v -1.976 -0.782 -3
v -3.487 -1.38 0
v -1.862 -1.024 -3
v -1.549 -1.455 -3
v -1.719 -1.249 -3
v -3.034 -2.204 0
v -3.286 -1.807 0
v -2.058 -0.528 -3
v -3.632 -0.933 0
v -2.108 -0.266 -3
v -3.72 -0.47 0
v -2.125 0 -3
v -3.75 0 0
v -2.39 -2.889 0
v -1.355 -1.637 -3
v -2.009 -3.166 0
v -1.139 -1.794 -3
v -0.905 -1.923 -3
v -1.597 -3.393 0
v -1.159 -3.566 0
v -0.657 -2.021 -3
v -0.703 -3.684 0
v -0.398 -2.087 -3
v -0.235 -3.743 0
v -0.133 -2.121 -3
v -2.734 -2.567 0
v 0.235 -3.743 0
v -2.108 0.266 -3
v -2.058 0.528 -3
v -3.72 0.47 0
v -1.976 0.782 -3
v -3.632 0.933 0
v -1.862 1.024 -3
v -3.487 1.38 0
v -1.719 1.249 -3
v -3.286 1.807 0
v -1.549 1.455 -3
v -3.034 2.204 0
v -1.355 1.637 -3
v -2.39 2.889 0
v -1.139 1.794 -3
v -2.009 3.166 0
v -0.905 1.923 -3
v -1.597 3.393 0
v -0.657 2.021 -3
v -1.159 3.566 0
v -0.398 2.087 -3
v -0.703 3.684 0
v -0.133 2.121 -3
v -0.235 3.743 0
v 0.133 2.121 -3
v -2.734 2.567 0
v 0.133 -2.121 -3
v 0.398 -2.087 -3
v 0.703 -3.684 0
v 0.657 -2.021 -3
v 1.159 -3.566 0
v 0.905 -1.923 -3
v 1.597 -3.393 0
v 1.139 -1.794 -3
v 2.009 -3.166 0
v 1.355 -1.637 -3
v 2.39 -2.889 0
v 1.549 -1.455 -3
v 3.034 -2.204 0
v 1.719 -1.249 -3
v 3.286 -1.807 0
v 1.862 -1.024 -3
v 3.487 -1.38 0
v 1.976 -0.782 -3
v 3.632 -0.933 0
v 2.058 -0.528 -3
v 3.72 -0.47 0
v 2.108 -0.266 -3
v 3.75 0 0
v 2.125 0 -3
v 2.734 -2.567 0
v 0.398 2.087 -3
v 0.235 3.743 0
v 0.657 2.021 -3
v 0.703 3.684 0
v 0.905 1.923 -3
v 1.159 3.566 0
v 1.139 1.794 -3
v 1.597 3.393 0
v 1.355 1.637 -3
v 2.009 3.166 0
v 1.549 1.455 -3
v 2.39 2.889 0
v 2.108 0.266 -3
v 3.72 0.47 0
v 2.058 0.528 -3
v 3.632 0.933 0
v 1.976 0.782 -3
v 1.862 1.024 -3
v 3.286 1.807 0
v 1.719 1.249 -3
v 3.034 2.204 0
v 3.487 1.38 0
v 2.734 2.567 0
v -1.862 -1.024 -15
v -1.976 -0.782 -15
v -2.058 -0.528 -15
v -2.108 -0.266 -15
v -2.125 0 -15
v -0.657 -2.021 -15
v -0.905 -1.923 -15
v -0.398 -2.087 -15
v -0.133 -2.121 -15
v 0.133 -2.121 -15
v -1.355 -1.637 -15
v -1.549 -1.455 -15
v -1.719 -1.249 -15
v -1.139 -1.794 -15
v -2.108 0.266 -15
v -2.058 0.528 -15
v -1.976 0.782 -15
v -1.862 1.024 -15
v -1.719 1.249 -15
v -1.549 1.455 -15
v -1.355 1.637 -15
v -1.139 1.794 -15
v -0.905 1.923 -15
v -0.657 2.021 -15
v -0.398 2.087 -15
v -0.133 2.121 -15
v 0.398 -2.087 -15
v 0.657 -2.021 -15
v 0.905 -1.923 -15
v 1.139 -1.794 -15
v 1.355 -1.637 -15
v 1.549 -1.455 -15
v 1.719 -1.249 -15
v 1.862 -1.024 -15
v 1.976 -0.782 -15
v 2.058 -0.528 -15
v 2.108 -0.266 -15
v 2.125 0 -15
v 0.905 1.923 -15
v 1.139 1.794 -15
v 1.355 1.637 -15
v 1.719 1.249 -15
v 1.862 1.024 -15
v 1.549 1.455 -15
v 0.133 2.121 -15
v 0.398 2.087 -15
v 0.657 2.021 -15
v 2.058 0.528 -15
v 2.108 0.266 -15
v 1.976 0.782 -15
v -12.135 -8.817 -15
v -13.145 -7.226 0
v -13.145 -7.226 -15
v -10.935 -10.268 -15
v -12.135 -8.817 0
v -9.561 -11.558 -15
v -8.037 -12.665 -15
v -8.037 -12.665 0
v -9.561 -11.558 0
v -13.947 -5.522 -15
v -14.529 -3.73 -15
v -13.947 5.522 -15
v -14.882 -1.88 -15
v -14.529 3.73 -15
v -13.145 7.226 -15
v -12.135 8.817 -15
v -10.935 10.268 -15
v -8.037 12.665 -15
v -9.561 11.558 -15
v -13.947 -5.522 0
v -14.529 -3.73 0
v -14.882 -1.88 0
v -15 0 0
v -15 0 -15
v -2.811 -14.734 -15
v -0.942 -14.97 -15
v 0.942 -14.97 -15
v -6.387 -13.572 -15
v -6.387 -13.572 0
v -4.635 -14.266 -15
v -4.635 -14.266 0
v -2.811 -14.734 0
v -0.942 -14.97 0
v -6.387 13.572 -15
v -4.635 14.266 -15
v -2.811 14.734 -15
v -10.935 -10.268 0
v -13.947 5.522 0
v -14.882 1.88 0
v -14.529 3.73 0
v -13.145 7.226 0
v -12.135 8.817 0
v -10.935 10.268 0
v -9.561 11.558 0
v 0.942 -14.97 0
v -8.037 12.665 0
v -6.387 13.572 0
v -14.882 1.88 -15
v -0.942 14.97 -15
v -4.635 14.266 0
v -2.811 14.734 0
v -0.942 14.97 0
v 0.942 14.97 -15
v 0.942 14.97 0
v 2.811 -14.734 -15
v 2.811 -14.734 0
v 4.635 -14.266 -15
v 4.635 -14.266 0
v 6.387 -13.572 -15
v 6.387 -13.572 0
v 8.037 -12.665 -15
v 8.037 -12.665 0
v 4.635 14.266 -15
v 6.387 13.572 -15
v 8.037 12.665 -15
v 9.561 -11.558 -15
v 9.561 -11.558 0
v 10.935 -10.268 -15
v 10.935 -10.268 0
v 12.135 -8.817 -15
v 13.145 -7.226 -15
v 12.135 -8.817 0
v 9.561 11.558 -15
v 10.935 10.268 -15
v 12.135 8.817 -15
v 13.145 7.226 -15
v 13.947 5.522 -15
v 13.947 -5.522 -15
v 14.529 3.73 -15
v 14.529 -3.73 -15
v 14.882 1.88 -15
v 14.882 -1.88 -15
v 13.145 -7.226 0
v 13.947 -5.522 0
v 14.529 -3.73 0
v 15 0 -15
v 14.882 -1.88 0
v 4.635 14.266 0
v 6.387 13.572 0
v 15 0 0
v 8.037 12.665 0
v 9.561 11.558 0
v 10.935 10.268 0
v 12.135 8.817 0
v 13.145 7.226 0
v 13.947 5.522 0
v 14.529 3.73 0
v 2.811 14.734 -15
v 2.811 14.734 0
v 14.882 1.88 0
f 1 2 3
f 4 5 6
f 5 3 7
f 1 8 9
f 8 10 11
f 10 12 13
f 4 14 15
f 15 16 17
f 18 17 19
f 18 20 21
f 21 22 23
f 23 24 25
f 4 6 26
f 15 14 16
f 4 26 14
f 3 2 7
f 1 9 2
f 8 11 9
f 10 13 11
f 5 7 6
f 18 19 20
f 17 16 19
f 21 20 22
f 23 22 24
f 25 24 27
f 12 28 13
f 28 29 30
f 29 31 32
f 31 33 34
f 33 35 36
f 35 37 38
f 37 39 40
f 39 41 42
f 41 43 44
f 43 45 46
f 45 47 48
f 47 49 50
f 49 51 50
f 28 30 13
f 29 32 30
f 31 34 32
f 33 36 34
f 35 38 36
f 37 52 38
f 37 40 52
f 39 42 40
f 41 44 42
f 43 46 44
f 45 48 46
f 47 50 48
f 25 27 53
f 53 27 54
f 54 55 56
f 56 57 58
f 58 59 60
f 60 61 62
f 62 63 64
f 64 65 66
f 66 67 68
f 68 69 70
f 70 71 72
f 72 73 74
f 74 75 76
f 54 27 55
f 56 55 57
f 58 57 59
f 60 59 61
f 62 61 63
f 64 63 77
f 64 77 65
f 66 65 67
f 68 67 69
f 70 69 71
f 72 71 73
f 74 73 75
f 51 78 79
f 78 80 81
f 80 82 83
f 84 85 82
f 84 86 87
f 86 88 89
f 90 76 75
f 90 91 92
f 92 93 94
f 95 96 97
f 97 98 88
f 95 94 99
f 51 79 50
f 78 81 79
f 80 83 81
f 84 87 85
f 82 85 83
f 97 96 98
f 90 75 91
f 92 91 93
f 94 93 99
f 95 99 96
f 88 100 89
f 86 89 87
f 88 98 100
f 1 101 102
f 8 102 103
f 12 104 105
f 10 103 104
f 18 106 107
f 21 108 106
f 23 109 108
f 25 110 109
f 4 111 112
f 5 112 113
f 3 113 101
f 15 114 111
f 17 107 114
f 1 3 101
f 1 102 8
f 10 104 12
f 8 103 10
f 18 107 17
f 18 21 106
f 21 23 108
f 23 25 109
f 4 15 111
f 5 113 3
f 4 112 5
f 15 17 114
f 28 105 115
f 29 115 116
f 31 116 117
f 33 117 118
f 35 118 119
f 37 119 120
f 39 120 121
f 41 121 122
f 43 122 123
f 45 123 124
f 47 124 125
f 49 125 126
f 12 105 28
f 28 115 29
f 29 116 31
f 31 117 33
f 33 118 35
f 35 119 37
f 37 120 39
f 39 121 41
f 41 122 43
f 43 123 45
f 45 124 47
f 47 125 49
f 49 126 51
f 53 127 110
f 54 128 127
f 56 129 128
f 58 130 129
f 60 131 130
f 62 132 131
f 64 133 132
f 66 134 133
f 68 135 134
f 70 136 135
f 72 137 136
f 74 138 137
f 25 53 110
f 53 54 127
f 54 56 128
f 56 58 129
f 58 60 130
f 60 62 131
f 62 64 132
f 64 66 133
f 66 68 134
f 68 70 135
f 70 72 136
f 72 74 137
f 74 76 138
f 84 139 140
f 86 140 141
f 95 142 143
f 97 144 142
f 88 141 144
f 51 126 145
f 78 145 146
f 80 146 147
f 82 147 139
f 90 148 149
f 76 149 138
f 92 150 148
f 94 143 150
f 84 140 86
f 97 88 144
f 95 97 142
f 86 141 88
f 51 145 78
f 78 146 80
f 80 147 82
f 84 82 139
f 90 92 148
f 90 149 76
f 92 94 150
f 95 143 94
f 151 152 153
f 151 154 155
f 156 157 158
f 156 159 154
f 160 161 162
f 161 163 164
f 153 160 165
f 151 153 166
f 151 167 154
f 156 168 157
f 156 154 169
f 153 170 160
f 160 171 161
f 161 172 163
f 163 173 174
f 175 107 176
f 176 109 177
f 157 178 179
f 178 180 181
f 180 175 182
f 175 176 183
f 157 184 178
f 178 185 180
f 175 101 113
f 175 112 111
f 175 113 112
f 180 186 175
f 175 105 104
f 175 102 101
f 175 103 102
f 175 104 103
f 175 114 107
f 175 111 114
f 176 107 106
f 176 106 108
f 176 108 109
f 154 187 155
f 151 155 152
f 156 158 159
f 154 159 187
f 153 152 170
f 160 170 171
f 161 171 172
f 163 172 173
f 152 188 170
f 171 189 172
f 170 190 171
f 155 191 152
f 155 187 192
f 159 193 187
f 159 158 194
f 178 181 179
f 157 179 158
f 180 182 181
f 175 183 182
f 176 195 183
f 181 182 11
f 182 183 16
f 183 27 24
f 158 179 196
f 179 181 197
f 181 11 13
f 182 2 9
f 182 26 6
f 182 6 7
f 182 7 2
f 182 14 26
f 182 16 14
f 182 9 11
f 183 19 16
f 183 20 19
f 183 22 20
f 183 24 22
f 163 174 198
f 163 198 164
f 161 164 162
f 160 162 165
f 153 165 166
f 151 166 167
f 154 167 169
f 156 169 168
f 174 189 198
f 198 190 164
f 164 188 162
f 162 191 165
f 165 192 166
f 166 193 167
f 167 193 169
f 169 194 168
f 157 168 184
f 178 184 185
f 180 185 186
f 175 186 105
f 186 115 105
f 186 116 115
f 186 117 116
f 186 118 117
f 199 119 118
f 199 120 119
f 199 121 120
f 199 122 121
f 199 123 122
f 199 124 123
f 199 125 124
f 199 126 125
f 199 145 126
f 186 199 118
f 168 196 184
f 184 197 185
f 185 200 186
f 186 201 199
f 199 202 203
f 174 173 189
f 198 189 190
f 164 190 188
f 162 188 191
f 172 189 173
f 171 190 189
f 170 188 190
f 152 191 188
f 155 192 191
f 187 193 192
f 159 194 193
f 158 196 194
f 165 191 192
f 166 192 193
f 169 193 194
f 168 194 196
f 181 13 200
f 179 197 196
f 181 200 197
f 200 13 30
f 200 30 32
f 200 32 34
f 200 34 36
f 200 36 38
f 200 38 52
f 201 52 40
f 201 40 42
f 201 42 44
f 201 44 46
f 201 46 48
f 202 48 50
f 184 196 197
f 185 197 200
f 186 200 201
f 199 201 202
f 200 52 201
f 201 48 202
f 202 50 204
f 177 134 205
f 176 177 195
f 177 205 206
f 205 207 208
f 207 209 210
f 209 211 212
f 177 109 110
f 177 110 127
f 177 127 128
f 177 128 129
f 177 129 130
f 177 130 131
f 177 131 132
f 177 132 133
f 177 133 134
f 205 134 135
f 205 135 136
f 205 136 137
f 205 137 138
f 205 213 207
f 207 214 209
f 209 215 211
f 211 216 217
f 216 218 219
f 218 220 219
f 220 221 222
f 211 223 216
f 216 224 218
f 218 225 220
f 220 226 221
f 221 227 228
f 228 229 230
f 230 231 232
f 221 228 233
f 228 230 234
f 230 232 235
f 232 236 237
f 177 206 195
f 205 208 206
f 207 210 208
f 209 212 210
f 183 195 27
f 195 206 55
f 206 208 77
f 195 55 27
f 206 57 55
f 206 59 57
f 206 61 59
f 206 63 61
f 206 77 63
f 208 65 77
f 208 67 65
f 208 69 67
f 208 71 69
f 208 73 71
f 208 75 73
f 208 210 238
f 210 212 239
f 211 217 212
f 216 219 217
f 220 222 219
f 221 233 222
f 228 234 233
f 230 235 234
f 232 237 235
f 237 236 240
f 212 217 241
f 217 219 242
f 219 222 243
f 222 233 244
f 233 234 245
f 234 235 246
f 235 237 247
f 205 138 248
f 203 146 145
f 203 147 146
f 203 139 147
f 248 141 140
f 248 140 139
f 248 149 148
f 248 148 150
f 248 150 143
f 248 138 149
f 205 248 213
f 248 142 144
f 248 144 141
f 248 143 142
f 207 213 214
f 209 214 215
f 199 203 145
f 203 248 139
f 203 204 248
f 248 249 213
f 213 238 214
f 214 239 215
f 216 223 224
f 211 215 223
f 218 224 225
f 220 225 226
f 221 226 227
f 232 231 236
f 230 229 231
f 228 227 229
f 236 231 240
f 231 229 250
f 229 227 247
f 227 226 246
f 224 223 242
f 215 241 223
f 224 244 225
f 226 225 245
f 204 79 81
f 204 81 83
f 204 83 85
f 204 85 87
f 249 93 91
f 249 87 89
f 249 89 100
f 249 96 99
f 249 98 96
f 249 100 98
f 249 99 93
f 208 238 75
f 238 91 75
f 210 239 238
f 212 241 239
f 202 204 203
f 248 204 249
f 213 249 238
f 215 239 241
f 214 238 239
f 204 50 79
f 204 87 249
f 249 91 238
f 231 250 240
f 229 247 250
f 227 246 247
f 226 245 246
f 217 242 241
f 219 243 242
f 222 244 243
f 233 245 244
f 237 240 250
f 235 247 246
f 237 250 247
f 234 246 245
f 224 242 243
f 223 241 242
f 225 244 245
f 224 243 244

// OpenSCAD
$fn = 50;

difference() {
	union() {
		translate(v = [0, 0, -15.0]) {
			cylinder(h = 15, r = 15.0);
		}
	}
	union() {
		translate(v = [0, 0, 0]) {
			rotate(a = [0, 0, 0]) {
				difference() {
					union() {
						translate(v = [0, 0, -18.0]) {
							cylinder(h = 18, r = 2.0);
						}
						translate(v = [0, 0, -3]) {
							cylinder(h = 3, r1 = 2.125, r2 = 3.75);
						}
						translate(v = [0, 0, -18.0]) {
							cylinder(h = 18, r = 2.125);
						}
						translate(v = [0, 0, -18.0]) {
							cylinder(h = 18, r = 2.0);
						}
					}
					union();
				}
			}
		}
	}
}
